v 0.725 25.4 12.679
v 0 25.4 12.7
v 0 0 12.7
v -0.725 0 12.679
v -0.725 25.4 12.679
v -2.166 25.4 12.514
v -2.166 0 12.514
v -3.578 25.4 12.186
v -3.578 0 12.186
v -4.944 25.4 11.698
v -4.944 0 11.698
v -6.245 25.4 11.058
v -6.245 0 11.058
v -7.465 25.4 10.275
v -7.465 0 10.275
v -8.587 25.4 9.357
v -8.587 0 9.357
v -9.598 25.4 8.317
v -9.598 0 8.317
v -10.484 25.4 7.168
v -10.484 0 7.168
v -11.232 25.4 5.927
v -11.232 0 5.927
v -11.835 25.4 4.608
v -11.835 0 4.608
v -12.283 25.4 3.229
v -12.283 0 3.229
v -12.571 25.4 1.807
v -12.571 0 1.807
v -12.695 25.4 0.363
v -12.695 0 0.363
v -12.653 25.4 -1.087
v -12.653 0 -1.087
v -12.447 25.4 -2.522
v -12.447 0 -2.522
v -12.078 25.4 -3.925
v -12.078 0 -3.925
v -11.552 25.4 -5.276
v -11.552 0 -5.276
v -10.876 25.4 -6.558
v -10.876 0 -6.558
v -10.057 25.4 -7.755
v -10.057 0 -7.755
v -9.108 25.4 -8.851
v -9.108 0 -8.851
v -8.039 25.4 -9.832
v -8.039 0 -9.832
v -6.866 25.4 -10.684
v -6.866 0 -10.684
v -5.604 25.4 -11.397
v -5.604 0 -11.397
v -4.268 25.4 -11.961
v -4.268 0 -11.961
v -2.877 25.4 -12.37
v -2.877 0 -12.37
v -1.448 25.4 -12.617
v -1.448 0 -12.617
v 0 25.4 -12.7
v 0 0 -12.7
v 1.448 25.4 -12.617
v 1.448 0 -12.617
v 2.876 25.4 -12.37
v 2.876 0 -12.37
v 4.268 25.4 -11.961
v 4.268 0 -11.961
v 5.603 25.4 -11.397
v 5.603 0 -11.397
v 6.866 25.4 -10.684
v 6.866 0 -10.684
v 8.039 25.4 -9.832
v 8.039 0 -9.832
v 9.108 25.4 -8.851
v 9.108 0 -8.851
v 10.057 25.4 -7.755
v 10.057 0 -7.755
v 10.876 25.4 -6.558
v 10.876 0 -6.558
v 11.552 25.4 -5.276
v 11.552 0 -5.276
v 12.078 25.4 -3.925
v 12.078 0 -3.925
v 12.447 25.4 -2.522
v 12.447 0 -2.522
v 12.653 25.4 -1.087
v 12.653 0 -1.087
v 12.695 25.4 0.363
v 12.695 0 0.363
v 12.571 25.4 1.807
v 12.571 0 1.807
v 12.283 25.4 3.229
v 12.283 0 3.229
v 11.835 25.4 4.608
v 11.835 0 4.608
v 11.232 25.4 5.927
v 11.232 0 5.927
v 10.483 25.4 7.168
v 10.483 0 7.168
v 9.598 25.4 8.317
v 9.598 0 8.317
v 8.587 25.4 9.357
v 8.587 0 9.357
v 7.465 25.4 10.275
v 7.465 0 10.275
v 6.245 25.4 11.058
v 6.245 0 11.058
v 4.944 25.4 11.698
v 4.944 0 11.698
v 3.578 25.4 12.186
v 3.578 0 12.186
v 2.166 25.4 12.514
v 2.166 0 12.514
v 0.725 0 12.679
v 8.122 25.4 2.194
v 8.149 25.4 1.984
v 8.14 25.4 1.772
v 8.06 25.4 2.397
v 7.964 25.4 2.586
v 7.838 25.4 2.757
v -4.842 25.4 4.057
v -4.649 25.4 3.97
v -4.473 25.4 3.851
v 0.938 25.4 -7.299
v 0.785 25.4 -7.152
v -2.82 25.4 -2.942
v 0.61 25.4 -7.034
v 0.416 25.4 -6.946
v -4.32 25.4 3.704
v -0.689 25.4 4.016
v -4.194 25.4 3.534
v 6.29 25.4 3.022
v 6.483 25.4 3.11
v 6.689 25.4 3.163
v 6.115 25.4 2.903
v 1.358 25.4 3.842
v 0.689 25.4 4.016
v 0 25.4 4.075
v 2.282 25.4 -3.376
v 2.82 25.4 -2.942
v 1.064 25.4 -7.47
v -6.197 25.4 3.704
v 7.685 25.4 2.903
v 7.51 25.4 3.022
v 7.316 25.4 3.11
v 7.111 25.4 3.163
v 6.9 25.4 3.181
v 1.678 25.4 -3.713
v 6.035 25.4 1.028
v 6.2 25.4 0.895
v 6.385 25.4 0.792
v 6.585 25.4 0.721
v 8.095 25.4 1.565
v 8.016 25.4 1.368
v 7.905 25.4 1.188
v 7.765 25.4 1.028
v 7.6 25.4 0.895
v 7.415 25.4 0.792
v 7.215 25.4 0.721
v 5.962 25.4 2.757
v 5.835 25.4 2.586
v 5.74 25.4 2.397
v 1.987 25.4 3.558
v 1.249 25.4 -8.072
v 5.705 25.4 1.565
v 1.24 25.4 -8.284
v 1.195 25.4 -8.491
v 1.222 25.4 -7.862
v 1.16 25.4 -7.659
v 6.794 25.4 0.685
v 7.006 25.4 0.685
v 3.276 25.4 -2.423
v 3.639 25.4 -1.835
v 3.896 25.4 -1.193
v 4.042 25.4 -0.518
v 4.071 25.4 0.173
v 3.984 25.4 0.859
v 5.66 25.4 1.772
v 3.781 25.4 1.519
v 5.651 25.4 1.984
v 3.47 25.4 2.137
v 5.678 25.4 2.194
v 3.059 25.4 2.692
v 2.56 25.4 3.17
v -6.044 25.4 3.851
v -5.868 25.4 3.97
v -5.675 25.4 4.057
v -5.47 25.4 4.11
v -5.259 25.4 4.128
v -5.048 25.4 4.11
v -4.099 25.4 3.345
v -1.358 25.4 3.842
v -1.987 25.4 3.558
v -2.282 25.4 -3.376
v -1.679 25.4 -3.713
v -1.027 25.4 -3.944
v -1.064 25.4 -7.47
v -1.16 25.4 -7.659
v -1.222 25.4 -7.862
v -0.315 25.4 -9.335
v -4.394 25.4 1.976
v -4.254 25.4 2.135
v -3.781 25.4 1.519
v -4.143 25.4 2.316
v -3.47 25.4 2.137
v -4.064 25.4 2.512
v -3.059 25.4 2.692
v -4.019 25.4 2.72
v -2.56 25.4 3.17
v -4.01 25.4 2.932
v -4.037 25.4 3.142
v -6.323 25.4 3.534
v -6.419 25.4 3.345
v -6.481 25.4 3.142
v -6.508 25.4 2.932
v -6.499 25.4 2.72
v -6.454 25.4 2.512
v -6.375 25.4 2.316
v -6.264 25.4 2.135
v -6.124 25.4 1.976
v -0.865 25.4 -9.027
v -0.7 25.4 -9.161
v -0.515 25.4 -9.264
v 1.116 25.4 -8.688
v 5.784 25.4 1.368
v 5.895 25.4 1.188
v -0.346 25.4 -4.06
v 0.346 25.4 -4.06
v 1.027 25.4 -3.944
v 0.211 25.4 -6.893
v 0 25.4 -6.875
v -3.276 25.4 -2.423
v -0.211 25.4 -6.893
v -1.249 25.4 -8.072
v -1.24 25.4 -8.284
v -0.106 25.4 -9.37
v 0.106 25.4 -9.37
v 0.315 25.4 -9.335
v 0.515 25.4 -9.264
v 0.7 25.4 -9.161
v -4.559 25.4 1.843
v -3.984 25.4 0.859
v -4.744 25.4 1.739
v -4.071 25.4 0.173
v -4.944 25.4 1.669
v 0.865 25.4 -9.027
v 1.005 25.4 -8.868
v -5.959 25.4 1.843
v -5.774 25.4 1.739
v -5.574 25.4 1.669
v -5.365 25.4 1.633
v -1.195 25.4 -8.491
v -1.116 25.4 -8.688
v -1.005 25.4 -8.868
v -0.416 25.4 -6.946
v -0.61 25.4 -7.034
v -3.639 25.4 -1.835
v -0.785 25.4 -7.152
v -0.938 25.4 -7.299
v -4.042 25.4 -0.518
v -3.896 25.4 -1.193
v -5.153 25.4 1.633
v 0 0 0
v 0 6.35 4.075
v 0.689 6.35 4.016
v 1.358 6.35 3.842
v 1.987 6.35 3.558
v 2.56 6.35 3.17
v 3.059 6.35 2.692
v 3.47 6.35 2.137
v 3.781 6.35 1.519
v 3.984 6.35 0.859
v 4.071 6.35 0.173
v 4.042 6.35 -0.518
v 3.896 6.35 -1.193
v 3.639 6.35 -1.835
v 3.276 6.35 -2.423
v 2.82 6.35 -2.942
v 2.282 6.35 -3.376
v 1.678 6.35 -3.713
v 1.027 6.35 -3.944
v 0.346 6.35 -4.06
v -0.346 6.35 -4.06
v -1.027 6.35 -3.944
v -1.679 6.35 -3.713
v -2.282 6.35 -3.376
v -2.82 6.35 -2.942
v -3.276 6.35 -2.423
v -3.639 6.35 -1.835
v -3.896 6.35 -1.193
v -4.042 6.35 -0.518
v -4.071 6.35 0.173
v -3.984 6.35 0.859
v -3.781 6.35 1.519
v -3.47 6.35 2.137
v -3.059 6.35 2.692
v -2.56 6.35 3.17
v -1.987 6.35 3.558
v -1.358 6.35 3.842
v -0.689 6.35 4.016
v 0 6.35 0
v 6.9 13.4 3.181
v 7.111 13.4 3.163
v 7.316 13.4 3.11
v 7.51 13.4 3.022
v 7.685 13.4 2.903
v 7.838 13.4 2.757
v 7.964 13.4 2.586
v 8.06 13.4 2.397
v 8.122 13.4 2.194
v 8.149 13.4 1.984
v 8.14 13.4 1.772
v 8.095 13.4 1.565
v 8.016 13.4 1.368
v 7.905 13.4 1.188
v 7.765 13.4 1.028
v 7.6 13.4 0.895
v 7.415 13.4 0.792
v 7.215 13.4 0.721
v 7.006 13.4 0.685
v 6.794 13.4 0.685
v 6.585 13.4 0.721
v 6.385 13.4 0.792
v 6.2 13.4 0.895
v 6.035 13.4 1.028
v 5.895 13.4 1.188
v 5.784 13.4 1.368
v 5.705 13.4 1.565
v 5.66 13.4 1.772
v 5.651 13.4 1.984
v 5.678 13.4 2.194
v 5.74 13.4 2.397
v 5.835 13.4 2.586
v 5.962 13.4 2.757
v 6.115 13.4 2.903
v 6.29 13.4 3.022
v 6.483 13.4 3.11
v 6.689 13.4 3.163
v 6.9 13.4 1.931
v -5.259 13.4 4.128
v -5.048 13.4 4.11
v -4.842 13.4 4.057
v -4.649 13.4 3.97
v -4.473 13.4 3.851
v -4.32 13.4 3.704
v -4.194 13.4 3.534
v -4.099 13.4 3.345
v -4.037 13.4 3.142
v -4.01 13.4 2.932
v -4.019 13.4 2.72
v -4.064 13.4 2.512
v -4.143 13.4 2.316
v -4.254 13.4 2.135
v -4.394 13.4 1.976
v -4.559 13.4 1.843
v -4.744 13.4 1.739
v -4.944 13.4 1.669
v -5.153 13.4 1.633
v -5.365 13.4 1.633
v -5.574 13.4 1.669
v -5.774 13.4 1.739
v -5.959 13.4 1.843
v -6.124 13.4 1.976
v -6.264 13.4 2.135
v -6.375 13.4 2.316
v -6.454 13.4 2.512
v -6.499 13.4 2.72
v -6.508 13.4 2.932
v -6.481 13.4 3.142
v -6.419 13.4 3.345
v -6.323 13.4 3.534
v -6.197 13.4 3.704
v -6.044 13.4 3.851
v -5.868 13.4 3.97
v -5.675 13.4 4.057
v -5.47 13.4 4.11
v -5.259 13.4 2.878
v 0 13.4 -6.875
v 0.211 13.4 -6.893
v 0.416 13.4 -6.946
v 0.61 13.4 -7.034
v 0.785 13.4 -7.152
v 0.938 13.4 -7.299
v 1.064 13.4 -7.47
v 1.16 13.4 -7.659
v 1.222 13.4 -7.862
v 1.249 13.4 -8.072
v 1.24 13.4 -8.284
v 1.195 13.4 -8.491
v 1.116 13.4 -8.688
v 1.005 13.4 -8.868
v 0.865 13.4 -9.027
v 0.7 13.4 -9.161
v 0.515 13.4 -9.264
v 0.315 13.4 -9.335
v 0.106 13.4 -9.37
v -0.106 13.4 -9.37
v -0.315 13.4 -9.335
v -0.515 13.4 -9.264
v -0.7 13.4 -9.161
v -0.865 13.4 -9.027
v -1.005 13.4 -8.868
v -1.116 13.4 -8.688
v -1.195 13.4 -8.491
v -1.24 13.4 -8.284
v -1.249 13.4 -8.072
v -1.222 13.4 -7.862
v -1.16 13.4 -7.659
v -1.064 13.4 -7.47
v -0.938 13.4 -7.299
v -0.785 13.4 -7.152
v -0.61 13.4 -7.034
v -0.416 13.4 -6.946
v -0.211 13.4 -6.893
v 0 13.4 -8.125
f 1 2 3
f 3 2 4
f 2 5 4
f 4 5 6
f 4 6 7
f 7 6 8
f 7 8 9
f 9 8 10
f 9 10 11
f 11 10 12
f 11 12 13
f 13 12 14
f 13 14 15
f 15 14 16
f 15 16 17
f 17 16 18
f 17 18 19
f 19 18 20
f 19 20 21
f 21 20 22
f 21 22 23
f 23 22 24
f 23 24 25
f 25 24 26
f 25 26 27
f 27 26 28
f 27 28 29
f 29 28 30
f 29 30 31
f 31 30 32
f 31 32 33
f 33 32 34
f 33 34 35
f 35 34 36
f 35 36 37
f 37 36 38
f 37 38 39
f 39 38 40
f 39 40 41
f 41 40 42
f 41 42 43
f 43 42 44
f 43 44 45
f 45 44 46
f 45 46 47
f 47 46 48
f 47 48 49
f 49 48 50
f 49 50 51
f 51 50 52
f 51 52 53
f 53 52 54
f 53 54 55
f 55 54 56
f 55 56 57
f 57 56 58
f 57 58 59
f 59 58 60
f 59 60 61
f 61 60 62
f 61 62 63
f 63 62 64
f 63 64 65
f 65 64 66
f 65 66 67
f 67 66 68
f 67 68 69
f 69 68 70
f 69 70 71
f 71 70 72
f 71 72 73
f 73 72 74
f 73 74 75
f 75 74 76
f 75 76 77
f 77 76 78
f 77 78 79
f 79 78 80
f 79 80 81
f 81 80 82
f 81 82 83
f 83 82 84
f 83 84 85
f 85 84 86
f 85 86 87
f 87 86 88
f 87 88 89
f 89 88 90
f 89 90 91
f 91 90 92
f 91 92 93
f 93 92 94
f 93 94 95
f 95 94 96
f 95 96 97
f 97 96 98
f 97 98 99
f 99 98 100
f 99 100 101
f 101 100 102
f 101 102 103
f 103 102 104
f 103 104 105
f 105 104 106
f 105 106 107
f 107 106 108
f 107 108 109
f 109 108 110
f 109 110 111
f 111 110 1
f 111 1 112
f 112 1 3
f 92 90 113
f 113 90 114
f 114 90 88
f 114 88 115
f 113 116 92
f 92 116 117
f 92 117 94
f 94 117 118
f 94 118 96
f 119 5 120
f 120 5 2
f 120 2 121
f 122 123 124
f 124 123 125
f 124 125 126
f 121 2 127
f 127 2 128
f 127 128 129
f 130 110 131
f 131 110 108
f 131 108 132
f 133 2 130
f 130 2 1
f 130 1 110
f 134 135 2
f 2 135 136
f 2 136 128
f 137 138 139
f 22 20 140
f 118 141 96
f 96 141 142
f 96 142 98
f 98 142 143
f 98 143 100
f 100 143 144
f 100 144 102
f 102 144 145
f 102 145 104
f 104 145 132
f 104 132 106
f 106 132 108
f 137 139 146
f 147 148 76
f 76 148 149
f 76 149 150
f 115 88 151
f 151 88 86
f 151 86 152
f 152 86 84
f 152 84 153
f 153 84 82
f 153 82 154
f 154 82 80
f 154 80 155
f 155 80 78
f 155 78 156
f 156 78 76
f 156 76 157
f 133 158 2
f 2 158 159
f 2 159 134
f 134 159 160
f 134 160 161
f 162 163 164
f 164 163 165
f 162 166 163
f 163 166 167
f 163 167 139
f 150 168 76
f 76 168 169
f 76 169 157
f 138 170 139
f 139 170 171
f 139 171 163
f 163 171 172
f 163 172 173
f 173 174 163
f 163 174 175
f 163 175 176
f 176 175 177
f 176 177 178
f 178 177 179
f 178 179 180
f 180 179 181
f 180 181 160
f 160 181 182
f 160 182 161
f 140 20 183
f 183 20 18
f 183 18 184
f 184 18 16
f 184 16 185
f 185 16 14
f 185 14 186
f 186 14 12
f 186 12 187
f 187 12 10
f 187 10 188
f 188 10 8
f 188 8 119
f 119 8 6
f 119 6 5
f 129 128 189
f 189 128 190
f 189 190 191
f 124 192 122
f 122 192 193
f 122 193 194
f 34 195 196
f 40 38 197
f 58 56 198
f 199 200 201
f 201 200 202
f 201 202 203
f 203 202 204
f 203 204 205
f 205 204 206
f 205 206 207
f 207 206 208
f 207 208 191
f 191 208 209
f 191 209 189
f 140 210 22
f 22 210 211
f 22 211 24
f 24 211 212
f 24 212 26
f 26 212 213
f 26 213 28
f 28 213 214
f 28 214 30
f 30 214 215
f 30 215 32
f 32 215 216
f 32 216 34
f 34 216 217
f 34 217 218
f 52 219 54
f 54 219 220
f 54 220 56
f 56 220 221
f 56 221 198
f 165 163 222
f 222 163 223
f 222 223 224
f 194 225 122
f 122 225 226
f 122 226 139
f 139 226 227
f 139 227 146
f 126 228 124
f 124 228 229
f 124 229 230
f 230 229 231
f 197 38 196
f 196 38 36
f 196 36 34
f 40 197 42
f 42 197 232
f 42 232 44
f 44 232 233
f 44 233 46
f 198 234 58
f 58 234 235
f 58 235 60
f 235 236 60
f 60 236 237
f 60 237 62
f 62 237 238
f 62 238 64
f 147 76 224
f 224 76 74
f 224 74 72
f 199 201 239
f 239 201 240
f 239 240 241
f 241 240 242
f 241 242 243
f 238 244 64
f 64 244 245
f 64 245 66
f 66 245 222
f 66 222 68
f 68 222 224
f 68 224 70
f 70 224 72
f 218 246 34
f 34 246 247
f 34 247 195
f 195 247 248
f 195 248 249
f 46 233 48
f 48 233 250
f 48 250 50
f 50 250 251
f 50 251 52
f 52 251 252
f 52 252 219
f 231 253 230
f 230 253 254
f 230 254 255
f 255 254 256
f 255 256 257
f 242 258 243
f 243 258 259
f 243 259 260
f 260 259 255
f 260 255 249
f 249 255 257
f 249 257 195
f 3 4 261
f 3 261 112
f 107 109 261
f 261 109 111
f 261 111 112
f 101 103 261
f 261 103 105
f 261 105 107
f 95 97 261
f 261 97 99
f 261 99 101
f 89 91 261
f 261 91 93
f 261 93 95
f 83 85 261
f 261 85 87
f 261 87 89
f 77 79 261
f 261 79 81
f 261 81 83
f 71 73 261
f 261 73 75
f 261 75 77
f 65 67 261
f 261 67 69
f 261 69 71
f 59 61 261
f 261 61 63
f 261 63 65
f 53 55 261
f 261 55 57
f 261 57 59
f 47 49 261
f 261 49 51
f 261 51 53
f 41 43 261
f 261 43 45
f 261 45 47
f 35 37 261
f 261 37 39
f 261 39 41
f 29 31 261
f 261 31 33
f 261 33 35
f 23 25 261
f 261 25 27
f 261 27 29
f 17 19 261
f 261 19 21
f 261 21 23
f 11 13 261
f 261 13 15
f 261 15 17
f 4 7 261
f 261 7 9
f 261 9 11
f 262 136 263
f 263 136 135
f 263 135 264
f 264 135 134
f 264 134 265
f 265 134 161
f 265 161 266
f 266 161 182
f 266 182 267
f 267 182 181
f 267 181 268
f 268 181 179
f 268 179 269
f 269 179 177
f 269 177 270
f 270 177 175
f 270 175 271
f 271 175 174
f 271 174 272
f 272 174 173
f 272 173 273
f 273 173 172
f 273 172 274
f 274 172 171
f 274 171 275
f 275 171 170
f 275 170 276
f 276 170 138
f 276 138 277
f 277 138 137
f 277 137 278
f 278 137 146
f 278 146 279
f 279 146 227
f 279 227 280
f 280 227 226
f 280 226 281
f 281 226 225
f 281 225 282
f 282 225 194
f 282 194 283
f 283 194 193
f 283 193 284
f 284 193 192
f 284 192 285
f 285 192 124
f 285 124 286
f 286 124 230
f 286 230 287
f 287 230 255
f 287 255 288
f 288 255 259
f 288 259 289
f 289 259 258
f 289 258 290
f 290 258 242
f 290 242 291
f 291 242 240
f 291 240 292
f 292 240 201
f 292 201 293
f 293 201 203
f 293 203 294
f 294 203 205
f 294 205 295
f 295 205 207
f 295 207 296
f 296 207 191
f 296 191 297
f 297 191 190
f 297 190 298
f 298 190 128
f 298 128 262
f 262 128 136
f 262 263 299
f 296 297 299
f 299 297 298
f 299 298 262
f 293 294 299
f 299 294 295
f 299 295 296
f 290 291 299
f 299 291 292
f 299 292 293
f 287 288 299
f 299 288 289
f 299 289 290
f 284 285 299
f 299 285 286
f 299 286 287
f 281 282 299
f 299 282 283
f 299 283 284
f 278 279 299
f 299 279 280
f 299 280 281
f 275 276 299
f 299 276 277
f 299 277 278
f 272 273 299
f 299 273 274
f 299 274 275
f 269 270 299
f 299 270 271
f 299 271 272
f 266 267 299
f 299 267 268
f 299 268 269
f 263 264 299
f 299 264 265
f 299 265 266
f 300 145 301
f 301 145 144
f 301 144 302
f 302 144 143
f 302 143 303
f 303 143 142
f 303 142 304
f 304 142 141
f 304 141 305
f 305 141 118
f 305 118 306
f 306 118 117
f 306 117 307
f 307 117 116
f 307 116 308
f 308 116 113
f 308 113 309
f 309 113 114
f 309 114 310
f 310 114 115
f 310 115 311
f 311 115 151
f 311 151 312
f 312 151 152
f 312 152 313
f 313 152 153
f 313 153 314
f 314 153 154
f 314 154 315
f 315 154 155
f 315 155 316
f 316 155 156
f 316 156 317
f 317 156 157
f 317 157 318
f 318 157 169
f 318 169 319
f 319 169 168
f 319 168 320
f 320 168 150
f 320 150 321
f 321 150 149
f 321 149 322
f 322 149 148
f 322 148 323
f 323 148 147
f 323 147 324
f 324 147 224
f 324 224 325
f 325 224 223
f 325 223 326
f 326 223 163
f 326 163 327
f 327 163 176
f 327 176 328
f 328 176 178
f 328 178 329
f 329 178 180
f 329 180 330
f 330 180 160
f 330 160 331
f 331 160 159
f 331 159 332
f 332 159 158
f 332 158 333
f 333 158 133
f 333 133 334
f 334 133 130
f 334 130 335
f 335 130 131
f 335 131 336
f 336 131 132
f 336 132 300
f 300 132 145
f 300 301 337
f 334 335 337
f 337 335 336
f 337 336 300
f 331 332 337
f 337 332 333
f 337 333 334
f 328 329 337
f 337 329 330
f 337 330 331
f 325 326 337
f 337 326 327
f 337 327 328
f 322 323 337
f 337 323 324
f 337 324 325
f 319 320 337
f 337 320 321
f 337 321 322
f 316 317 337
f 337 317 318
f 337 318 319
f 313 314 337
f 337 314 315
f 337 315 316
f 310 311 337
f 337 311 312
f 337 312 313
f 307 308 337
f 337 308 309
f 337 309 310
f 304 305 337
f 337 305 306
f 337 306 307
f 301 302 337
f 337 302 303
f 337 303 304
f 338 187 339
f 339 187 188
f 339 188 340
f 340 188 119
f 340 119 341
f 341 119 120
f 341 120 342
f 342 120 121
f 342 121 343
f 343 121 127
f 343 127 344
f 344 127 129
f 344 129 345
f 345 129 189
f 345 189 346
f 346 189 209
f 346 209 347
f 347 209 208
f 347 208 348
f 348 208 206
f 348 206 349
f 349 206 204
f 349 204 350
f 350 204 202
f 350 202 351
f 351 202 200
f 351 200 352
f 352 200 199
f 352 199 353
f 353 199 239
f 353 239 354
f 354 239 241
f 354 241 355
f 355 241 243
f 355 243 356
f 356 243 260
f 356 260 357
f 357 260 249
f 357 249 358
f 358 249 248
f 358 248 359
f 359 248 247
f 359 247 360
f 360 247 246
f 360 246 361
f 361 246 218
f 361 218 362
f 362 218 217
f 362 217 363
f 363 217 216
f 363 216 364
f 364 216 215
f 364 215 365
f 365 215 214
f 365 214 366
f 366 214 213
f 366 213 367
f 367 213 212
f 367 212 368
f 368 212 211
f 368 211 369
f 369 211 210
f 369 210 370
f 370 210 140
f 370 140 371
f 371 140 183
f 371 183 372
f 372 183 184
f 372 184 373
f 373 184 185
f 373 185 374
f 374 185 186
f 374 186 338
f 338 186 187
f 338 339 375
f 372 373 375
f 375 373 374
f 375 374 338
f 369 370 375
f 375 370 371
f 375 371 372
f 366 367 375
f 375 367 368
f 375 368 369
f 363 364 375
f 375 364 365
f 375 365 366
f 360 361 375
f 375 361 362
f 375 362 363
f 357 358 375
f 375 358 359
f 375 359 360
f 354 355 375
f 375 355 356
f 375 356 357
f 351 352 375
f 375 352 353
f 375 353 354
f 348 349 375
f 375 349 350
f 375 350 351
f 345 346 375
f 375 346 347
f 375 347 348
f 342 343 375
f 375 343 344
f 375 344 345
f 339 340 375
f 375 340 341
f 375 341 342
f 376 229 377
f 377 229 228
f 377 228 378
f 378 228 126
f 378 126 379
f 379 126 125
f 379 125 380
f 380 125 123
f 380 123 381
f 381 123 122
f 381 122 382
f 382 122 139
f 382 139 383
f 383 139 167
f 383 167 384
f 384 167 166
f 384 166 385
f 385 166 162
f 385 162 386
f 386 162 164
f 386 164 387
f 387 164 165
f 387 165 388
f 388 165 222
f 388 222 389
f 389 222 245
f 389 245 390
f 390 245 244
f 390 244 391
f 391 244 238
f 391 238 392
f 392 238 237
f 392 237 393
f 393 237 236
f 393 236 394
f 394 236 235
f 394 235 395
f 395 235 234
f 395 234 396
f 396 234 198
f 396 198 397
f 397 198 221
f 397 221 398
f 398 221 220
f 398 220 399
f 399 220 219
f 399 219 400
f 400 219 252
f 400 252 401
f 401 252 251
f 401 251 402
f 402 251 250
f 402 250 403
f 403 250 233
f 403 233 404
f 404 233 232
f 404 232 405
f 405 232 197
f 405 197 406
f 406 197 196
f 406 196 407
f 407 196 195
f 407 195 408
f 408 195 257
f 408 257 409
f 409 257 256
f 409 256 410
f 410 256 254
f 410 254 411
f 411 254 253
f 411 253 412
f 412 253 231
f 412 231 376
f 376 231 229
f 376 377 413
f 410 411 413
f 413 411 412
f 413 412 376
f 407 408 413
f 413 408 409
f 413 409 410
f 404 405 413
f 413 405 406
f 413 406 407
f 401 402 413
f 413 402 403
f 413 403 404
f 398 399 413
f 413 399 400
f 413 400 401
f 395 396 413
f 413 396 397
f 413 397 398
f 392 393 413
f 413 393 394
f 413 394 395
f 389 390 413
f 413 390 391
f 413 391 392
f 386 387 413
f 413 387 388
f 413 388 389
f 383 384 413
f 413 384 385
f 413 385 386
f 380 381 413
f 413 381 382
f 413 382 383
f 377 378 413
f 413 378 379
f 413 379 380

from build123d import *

# Parameters (mm, degrees)
SKETCH1_R           = 12.7
BOSS_EXTRUDE1_DEPTH = 25.4
SKETCH2_R           = 4.075
CUT_EXTRUDE1_DEPTH  = 19.05
SKETCH3_R           = 1.25
CUT_EXTRUDE2_DEPTH  = 12


with BuildPart() as part:
    # Sketch1 → Boss-Extrude1 (new body)
    with BuildSketch(Plane(origin=(0, 0, 0), x_dir=(1, 0, 0), z_dir=(0, 1, 0))):
        Circle(SKETCH1_R)
    extrude(amount=BOSS_EXTRUDE1_DEPTH)

    # Sketch2 → Cut-Extrude1 (cut)
    with BuildSketch(Plane(origin=(0, 25.4, 0), x_dir=(1, 0, 0), z_dir=(0, 1, 0))):
        Circle(SKETCH2_R)
    extrude(amount=-CUT_EXTRUDE1_DEPTH, mode=Mode.SUBTRACT)

    # Sketch3 → Cut-Extrude2 (cut)
    with BuildSketch(Plane(origin=(0, 25.4, 0), x_dir=(1, 0, 0), z_dir=(0, 1, 0))):
        with Locations((6.899904191, -1.930944627)):
            Circle(SKETCH3_R)
        with Locations((-5.25875141, -2.878464627)):
            Circle(SKETCH3_R)
        with Locations((0, 8.125)):
            Circle(SKETCH3_R)
    extrude(amount=-CUT_EXTRUDE2_DEPTH, mode=Mode.SUBTRACT)


solid = part.part
